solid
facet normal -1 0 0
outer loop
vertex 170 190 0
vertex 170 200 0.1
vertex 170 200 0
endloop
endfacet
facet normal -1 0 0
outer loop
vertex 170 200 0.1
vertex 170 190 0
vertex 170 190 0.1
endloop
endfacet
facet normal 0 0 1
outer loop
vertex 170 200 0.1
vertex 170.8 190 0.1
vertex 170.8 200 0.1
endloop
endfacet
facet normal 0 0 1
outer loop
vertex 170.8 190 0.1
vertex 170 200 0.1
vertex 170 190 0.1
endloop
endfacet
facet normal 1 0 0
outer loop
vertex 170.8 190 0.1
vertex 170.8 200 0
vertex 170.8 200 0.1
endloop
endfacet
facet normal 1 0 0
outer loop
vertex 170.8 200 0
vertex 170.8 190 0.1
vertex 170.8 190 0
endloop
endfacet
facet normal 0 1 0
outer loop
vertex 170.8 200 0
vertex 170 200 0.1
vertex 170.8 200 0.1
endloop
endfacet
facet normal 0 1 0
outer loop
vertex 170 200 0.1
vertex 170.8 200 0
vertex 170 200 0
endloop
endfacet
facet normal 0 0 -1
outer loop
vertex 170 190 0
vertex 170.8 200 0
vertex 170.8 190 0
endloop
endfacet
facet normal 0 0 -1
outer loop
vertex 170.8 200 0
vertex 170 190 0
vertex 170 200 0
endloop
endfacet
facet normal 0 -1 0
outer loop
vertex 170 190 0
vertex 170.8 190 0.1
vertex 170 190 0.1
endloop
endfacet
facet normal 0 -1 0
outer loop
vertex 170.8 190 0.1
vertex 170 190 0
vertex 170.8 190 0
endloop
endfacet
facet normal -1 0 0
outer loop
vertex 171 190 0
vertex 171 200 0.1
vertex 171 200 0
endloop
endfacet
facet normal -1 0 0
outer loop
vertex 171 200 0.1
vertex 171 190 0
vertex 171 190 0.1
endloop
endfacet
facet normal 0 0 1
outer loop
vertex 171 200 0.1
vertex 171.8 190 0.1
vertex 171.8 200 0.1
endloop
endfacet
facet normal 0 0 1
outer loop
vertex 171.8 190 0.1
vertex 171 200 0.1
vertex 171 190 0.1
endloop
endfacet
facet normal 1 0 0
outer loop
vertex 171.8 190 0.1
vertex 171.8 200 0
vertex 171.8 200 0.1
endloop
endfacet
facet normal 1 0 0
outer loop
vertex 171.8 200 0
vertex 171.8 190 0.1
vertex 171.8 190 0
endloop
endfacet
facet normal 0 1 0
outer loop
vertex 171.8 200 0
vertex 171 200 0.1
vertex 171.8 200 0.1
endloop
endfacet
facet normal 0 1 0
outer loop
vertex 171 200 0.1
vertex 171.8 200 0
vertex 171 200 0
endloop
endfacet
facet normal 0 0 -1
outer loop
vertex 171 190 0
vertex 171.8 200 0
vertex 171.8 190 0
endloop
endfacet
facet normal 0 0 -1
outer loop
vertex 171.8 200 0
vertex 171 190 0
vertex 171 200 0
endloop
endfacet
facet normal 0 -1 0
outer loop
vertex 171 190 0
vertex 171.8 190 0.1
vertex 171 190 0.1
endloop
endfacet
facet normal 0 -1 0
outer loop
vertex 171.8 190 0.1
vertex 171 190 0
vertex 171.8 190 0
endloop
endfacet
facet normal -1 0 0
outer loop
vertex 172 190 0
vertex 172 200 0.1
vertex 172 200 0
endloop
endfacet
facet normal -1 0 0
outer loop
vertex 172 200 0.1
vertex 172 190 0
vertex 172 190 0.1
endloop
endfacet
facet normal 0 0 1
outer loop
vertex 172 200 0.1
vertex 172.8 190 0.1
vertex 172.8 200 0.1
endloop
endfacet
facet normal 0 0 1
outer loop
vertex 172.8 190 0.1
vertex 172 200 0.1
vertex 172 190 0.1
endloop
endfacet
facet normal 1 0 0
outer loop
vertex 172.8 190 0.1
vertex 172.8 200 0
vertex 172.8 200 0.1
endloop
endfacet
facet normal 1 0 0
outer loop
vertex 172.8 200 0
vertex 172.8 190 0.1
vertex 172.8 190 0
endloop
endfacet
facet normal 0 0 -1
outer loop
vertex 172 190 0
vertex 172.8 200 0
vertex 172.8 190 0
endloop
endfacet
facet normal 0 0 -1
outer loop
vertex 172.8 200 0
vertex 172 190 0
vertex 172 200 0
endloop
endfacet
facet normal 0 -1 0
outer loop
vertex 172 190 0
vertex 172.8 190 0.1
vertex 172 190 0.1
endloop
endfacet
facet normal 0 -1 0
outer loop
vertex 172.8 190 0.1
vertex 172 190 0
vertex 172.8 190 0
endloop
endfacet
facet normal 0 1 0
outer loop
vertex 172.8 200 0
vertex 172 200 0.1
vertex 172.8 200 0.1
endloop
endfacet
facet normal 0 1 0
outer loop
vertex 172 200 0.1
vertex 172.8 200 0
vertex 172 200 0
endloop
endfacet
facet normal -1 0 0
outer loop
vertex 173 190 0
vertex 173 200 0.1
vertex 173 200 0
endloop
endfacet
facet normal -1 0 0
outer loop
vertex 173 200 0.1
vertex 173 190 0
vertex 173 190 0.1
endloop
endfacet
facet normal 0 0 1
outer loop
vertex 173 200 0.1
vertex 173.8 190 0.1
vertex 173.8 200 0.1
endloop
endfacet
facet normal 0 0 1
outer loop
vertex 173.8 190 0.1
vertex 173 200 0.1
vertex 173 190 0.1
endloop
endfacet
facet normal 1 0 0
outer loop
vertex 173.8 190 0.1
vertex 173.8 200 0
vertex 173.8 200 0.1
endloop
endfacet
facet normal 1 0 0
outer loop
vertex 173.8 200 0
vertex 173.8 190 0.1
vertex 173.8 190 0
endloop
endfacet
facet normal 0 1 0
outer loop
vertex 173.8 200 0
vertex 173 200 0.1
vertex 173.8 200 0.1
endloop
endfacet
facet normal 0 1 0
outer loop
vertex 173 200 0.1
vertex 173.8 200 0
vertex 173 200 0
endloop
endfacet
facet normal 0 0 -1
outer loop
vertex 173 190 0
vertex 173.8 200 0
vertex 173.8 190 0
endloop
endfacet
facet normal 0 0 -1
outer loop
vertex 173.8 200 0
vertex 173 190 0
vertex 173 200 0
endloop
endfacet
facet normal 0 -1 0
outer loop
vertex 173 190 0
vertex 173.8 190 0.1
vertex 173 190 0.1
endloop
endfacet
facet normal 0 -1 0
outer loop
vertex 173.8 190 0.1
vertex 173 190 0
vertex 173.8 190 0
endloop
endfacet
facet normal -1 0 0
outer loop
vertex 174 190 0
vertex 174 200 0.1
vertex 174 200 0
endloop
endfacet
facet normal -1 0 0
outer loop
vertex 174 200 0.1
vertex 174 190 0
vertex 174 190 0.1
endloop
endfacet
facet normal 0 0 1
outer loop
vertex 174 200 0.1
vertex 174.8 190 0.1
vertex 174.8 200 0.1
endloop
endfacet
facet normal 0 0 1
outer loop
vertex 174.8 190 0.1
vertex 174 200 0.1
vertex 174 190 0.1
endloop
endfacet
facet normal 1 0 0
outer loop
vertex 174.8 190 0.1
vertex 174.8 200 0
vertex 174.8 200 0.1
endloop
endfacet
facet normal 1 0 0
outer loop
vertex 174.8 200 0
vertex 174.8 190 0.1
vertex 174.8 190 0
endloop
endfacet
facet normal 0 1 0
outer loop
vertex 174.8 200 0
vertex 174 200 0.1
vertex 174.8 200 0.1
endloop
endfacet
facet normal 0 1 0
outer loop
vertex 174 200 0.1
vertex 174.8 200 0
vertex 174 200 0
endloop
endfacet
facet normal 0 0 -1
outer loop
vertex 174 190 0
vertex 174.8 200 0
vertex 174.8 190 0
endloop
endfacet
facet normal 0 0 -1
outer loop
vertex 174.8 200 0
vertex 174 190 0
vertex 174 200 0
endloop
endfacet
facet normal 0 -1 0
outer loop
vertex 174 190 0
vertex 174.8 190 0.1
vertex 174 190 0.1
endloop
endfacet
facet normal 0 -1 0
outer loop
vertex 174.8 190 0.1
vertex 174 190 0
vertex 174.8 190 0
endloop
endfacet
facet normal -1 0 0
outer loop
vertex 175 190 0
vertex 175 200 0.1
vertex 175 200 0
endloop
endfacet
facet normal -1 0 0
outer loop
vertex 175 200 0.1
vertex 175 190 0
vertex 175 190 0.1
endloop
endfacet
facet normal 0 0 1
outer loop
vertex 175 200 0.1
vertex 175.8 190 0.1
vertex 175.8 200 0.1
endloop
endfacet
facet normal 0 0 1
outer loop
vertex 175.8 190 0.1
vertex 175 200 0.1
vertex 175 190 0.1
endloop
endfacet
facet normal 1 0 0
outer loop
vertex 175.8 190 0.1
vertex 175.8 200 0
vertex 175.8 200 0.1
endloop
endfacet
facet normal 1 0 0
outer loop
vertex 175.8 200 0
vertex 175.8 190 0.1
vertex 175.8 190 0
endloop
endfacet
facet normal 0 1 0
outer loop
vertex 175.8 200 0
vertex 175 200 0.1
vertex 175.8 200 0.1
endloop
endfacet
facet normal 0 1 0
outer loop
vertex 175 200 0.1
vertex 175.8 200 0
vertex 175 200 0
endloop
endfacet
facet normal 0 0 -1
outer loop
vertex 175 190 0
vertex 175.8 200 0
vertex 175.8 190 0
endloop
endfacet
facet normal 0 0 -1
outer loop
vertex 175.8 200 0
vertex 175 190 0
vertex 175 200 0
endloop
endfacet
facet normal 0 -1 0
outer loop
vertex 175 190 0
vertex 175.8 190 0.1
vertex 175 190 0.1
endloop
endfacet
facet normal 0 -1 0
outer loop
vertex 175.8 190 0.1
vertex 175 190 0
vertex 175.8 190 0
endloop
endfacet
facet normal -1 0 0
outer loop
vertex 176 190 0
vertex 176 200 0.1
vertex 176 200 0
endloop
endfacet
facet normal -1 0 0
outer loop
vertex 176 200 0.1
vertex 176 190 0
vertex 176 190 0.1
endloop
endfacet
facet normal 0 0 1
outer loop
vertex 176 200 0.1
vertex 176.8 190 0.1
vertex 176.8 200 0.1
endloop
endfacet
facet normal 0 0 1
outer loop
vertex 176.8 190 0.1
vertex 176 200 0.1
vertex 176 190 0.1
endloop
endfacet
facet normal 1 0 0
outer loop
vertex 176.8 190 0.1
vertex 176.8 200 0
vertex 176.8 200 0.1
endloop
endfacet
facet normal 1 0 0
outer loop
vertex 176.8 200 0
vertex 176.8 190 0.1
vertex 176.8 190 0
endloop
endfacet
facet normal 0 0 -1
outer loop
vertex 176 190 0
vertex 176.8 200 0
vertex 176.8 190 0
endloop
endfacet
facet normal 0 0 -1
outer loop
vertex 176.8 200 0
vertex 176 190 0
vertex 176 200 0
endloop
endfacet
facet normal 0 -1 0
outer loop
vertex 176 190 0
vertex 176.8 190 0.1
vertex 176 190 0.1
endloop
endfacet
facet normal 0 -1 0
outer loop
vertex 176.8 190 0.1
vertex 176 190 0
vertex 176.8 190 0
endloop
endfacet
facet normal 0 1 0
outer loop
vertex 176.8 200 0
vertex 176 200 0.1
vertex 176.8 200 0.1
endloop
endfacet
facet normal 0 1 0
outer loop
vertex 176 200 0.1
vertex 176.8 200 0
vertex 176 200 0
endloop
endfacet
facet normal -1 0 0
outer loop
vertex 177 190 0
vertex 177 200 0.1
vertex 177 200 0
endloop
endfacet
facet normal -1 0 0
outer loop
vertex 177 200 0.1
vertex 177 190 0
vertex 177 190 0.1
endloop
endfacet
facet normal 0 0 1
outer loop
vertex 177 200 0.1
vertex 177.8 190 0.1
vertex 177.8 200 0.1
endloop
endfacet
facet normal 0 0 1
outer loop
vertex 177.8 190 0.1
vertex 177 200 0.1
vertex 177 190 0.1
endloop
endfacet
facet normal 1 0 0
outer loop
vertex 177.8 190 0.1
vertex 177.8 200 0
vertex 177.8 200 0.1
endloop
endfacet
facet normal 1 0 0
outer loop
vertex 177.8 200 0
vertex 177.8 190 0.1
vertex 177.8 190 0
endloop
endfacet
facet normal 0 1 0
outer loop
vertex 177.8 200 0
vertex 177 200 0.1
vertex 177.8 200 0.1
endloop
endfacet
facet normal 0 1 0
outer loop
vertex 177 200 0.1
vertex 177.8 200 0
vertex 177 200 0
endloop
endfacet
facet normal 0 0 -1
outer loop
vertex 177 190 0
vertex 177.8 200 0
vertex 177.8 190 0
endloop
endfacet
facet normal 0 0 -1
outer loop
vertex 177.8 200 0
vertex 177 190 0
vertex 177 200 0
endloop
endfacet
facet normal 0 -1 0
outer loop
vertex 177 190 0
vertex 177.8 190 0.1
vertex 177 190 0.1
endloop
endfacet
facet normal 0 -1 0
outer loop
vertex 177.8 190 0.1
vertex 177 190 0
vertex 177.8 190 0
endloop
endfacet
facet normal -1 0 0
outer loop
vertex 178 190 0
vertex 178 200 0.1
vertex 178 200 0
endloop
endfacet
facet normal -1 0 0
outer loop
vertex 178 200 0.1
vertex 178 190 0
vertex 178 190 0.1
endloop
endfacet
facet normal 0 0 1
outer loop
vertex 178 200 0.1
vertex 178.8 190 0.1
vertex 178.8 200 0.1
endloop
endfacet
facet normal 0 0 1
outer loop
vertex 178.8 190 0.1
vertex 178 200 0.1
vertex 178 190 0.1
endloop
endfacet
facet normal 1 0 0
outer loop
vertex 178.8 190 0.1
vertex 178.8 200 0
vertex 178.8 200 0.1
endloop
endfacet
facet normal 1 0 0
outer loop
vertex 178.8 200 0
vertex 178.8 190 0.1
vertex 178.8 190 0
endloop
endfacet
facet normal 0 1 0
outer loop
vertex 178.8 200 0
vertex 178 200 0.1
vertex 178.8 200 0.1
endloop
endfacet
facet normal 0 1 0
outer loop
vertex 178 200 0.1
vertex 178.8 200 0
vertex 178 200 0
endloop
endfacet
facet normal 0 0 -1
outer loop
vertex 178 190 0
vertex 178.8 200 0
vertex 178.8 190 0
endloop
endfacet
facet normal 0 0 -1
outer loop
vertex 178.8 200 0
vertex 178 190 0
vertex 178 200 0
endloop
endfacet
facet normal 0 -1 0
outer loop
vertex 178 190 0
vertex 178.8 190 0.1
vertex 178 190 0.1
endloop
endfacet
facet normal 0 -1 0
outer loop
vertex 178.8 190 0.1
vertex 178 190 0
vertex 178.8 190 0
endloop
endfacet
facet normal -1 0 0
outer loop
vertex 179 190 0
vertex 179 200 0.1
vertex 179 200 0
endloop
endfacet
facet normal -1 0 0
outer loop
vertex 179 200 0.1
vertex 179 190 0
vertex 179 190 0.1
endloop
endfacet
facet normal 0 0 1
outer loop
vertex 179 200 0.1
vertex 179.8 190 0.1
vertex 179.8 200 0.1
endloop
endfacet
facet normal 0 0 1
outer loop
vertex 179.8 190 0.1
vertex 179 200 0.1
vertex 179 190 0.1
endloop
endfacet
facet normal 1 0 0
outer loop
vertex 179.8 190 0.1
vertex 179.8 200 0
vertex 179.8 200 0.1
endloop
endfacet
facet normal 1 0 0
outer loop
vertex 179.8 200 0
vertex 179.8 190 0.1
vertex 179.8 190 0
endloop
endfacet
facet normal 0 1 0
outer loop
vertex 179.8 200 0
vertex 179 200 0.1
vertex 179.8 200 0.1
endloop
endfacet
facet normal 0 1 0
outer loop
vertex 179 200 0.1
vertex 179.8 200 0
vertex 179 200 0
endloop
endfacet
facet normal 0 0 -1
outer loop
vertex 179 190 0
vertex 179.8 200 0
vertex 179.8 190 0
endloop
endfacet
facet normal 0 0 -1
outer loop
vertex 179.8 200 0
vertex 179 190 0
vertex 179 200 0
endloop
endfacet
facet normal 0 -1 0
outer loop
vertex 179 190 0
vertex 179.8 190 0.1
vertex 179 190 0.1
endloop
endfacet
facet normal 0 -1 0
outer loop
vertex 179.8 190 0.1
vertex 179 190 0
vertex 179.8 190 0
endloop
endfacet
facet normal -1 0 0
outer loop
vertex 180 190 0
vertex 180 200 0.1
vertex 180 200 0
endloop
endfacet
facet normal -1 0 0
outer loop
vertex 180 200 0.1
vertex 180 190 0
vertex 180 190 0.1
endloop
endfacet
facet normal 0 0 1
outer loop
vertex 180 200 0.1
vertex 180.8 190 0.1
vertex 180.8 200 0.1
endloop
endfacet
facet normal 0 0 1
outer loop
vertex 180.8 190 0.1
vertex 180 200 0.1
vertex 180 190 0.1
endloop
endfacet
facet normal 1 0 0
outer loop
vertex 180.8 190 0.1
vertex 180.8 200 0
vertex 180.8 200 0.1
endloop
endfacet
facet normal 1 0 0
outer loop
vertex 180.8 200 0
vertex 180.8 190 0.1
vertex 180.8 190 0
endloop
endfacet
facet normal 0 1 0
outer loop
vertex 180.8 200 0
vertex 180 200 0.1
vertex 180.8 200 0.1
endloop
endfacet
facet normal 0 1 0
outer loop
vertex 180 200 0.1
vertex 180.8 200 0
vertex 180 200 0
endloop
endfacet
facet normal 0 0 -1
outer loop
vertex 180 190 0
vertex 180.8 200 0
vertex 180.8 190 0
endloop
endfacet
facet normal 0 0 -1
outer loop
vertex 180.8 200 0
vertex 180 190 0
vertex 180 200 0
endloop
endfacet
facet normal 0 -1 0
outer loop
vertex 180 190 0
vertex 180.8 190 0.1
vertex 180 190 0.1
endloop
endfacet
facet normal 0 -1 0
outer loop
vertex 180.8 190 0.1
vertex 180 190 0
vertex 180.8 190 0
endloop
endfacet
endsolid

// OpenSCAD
translate([10+160,10+180,0])
        for (i = [0 : 10]){
            translate([i,0,0])
                cube(size = [0.8,10,0.1]);
    }
